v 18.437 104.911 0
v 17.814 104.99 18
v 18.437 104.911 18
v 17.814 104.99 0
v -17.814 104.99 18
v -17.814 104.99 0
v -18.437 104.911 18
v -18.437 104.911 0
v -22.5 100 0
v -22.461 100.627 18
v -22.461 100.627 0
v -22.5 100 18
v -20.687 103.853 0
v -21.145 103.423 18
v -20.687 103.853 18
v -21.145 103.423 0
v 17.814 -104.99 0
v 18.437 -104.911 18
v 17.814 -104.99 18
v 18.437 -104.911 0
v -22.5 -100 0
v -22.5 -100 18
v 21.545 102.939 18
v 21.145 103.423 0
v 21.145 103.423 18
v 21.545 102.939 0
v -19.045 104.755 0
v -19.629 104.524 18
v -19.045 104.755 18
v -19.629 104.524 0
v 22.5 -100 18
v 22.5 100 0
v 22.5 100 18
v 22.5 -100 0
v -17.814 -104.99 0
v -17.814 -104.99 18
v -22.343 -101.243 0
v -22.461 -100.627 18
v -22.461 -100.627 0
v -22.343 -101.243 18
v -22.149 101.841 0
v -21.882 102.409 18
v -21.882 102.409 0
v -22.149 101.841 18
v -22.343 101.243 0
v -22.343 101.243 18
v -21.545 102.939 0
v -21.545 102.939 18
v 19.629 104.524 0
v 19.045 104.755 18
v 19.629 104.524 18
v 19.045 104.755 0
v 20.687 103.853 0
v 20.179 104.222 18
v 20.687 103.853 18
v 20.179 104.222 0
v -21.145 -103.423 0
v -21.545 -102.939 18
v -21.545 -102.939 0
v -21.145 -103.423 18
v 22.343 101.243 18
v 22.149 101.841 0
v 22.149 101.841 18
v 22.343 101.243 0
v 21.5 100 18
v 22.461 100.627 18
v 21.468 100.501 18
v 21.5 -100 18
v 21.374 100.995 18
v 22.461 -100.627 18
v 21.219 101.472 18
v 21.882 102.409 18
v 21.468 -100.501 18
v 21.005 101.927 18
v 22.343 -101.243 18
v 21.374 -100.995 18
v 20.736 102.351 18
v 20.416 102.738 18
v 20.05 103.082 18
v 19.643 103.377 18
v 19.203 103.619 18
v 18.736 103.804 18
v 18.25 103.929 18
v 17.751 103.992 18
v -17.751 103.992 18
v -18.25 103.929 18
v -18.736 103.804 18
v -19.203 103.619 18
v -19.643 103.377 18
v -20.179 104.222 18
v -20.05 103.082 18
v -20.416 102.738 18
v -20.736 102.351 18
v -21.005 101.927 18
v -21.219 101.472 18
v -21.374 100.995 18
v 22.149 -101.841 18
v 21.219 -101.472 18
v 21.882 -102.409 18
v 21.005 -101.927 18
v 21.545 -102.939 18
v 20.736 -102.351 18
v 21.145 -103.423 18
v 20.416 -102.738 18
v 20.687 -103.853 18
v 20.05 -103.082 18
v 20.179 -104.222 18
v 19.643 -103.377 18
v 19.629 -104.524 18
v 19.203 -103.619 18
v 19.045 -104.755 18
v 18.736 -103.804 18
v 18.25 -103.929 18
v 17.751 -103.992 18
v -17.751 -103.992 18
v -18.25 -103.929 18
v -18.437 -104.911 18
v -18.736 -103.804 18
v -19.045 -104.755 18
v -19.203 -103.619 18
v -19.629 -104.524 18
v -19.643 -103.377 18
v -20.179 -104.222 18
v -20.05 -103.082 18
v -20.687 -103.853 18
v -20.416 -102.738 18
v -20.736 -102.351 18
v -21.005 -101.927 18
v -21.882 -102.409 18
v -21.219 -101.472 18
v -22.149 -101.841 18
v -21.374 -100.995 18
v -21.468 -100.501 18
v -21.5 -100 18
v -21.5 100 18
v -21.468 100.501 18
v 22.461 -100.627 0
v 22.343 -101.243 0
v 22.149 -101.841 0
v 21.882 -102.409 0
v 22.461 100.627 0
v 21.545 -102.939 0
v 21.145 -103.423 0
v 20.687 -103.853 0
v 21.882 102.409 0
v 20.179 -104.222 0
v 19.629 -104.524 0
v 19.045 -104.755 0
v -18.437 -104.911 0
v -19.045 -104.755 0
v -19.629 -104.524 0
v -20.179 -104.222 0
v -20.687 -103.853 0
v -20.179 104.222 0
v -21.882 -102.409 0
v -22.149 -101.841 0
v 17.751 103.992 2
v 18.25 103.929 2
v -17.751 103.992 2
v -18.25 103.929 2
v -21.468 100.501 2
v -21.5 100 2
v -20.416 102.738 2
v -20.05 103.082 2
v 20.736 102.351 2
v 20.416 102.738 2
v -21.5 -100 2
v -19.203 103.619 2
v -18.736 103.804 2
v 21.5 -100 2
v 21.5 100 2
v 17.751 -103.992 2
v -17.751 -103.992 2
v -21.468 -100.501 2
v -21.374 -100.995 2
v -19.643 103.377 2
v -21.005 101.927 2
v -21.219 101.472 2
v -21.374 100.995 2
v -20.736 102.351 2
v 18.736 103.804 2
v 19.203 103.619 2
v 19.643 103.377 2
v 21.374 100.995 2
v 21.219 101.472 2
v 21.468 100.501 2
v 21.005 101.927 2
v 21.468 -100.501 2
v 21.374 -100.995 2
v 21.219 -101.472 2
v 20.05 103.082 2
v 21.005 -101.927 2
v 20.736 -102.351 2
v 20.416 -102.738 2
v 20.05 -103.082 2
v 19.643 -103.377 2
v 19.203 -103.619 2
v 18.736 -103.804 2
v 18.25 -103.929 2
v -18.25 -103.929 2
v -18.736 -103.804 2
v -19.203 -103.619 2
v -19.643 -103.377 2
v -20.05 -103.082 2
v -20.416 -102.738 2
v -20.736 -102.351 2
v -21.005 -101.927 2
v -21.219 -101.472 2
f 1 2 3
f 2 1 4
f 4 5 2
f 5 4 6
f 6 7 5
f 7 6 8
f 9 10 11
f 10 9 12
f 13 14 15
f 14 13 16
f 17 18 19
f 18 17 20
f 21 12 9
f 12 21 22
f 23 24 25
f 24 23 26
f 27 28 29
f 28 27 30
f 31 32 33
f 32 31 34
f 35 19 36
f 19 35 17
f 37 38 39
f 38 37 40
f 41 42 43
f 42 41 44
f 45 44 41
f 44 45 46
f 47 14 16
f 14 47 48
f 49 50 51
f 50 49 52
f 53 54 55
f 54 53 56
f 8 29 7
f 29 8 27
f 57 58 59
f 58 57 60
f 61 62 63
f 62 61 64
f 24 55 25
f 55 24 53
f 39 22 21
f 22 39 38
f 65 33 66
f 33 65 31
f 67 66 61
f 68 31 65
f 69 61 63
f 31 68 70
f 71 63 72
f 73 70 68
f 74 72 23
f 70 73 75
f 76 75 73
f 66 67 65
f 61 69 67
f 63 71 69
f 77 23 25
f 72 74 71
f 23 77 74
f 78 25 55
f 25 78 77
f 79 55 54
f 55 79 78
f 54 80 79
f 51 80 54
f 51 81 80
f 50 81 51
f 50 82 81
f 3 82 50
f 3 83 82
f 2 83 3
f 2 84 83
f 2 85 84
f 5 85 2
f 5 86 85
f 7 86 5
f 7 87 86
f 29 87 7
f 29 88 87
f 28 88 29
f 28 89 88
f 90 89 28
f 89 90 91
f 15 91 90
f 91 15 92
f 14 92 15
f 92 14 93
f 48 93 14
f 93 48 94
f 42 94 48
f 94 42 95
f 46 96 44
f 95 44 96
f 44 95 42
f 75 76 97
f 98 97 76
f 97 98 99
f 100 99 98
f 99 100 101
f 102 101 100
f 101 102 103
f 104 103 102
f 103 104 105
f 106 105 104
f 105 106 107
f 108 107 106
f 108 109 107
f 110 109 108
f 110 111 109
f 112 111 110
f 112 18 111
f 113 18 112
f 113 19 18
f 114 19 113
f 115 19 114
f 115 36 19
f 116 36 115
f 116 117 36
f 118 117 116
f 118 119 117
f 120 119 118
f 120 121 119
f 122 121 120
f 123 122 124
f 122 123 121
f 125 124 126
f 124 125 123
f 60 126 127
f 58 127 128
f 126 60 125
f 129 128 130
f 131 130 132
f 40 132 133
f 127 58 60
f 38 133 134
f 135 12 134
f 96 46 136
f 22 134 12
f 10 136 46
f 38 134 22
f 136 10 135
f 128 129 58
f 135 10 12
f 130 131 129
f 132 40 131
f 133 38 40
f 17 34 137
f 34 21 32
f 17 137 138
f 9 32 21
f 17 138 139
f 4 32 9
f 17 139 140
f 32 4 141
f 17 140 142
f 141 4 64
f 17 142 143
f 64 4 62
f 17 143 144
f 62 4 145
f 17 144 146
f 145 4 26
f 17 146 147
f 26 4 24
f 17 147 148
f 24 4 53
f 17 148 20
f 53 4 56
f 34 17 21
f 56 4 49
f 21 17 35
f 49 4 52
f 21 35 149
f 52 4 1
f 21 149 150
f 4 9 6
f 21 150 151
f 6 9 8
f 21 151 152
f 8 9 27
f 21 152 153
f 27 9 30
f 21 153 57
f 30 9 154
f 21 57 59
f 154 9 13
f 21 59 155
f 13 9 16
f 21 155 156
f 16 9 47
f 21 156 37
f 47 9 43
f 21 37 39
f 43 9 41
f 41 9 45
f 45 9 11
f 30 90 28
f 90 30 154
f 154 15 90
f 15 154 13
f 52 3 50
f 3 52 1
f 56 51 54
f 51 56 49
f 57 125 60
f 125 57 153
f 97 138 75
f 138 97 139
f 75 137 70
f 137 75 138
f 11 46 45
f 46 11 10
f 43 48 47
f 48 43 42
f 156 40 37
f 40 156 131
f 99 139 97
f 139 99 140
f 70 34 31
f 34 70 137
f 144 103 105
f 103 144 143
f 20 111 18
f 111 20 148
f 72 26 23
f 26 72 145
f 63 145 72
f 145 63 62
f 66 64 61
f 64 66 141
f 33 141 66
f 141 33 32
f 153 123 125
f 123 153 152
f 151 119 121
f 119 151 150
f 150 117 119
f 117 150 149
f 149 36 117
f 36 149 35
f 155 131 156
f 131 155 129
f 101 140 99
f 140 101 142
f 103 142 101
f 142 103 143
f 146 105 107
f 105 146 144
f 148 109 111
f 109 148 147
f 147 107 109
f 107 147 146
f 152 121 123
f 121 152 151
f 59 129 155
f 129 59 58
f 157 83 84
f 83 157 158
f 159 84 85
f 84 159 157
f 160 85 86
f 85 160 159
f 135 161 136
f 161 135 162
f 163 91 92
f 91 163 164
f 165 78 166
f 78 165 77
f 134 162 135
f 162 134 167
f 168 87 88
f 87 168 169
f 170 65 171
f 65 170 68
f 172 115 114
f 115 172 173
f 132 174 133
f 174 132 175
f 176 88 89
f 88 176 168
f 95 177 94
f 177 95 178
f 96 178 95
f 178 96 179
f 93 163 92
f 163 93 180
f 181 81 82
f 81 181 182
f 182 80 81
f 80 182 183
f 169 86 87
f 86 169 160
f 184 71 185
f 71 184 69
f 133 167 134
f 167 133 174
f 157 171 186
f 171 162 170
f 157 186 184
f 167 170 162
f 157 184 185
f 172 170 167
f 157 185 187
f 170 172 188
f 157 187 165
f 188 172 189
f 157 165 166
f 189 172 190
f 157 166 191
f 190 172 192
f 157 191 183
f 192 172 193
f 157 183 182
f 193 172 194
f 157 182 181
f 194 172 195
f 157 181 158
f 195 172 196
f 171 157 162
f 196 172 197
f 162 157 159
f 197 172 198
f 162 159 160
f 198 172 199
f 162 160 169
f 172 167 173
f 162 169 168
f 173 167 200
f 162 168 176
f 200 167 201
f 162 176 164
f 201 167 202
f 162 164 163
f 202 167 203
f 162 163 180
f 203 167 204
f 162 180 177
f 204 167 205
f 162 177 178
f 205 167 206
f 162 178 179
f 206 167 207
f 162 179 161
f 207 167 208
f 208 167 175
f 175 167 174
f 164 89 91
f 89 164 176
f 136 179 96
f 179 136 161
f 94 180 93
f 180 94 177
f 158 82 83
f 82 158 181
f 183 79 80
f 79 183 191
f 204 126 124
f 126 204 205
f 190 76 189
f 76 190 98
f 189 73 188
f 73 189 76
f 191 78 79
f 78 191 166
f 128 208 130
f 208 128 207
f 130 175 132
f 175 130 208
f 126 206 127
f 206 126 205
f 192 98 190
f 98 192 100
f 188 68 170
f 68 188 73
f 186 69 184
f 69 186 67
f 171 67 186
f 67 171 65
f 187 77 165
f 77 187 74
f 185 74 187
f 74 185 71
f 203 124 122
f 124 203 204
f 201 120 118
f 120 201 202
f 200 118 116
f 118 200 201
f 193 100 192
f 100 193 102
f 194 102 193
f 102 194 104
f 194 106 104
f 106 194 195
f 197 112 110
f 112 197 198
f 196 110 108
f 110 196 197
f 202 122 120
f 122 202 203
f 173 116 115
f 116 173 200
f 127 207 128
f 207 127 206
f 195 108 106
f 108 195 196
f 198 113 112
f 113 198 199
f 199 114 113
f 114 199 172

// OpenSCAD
$fn = 50;


difference() {
	union() {
		hull() {
			translate(v = [-17.5000000000, 100.0000000000, 0]) {
				cylinder(h = 18, r = 5);
			}
			translate(v = [17.5000000000, 100.0000000000, 0]) {
				cylinder(h = 18, r = 5);
			}
			translate(v = [-17.5000000000, -100.0000000000, 0]) {
				cylinder(h = 18, r = 5);
			}
			translate(v = [17.5000000000, -100.0000000000, 0]) {
				cylinder(h = 18, r = 5);
			}
		}
	}
	union() {
		translate(v = [0, 0, 2]) {
			hull() {
				translate(v = [-17.5000000000, 100.0000000000, 0]) {
					cylinder(h = 16, r = 4);
				}
				translate(v = [17.5000000000, 100.0000000000, 0]) {
					cylinder(h = 16, r = 4);
				}
				translate(v = [-17.5000000000, -100.0000000000, 0]) {
					cylinder(h = 16, r = 4);
				}
				translate(v = [17.5000000000, -100.0000000000, 0]) {
					cylinder(h = 16, r = 4);
				}
			}
		}
	}
}
